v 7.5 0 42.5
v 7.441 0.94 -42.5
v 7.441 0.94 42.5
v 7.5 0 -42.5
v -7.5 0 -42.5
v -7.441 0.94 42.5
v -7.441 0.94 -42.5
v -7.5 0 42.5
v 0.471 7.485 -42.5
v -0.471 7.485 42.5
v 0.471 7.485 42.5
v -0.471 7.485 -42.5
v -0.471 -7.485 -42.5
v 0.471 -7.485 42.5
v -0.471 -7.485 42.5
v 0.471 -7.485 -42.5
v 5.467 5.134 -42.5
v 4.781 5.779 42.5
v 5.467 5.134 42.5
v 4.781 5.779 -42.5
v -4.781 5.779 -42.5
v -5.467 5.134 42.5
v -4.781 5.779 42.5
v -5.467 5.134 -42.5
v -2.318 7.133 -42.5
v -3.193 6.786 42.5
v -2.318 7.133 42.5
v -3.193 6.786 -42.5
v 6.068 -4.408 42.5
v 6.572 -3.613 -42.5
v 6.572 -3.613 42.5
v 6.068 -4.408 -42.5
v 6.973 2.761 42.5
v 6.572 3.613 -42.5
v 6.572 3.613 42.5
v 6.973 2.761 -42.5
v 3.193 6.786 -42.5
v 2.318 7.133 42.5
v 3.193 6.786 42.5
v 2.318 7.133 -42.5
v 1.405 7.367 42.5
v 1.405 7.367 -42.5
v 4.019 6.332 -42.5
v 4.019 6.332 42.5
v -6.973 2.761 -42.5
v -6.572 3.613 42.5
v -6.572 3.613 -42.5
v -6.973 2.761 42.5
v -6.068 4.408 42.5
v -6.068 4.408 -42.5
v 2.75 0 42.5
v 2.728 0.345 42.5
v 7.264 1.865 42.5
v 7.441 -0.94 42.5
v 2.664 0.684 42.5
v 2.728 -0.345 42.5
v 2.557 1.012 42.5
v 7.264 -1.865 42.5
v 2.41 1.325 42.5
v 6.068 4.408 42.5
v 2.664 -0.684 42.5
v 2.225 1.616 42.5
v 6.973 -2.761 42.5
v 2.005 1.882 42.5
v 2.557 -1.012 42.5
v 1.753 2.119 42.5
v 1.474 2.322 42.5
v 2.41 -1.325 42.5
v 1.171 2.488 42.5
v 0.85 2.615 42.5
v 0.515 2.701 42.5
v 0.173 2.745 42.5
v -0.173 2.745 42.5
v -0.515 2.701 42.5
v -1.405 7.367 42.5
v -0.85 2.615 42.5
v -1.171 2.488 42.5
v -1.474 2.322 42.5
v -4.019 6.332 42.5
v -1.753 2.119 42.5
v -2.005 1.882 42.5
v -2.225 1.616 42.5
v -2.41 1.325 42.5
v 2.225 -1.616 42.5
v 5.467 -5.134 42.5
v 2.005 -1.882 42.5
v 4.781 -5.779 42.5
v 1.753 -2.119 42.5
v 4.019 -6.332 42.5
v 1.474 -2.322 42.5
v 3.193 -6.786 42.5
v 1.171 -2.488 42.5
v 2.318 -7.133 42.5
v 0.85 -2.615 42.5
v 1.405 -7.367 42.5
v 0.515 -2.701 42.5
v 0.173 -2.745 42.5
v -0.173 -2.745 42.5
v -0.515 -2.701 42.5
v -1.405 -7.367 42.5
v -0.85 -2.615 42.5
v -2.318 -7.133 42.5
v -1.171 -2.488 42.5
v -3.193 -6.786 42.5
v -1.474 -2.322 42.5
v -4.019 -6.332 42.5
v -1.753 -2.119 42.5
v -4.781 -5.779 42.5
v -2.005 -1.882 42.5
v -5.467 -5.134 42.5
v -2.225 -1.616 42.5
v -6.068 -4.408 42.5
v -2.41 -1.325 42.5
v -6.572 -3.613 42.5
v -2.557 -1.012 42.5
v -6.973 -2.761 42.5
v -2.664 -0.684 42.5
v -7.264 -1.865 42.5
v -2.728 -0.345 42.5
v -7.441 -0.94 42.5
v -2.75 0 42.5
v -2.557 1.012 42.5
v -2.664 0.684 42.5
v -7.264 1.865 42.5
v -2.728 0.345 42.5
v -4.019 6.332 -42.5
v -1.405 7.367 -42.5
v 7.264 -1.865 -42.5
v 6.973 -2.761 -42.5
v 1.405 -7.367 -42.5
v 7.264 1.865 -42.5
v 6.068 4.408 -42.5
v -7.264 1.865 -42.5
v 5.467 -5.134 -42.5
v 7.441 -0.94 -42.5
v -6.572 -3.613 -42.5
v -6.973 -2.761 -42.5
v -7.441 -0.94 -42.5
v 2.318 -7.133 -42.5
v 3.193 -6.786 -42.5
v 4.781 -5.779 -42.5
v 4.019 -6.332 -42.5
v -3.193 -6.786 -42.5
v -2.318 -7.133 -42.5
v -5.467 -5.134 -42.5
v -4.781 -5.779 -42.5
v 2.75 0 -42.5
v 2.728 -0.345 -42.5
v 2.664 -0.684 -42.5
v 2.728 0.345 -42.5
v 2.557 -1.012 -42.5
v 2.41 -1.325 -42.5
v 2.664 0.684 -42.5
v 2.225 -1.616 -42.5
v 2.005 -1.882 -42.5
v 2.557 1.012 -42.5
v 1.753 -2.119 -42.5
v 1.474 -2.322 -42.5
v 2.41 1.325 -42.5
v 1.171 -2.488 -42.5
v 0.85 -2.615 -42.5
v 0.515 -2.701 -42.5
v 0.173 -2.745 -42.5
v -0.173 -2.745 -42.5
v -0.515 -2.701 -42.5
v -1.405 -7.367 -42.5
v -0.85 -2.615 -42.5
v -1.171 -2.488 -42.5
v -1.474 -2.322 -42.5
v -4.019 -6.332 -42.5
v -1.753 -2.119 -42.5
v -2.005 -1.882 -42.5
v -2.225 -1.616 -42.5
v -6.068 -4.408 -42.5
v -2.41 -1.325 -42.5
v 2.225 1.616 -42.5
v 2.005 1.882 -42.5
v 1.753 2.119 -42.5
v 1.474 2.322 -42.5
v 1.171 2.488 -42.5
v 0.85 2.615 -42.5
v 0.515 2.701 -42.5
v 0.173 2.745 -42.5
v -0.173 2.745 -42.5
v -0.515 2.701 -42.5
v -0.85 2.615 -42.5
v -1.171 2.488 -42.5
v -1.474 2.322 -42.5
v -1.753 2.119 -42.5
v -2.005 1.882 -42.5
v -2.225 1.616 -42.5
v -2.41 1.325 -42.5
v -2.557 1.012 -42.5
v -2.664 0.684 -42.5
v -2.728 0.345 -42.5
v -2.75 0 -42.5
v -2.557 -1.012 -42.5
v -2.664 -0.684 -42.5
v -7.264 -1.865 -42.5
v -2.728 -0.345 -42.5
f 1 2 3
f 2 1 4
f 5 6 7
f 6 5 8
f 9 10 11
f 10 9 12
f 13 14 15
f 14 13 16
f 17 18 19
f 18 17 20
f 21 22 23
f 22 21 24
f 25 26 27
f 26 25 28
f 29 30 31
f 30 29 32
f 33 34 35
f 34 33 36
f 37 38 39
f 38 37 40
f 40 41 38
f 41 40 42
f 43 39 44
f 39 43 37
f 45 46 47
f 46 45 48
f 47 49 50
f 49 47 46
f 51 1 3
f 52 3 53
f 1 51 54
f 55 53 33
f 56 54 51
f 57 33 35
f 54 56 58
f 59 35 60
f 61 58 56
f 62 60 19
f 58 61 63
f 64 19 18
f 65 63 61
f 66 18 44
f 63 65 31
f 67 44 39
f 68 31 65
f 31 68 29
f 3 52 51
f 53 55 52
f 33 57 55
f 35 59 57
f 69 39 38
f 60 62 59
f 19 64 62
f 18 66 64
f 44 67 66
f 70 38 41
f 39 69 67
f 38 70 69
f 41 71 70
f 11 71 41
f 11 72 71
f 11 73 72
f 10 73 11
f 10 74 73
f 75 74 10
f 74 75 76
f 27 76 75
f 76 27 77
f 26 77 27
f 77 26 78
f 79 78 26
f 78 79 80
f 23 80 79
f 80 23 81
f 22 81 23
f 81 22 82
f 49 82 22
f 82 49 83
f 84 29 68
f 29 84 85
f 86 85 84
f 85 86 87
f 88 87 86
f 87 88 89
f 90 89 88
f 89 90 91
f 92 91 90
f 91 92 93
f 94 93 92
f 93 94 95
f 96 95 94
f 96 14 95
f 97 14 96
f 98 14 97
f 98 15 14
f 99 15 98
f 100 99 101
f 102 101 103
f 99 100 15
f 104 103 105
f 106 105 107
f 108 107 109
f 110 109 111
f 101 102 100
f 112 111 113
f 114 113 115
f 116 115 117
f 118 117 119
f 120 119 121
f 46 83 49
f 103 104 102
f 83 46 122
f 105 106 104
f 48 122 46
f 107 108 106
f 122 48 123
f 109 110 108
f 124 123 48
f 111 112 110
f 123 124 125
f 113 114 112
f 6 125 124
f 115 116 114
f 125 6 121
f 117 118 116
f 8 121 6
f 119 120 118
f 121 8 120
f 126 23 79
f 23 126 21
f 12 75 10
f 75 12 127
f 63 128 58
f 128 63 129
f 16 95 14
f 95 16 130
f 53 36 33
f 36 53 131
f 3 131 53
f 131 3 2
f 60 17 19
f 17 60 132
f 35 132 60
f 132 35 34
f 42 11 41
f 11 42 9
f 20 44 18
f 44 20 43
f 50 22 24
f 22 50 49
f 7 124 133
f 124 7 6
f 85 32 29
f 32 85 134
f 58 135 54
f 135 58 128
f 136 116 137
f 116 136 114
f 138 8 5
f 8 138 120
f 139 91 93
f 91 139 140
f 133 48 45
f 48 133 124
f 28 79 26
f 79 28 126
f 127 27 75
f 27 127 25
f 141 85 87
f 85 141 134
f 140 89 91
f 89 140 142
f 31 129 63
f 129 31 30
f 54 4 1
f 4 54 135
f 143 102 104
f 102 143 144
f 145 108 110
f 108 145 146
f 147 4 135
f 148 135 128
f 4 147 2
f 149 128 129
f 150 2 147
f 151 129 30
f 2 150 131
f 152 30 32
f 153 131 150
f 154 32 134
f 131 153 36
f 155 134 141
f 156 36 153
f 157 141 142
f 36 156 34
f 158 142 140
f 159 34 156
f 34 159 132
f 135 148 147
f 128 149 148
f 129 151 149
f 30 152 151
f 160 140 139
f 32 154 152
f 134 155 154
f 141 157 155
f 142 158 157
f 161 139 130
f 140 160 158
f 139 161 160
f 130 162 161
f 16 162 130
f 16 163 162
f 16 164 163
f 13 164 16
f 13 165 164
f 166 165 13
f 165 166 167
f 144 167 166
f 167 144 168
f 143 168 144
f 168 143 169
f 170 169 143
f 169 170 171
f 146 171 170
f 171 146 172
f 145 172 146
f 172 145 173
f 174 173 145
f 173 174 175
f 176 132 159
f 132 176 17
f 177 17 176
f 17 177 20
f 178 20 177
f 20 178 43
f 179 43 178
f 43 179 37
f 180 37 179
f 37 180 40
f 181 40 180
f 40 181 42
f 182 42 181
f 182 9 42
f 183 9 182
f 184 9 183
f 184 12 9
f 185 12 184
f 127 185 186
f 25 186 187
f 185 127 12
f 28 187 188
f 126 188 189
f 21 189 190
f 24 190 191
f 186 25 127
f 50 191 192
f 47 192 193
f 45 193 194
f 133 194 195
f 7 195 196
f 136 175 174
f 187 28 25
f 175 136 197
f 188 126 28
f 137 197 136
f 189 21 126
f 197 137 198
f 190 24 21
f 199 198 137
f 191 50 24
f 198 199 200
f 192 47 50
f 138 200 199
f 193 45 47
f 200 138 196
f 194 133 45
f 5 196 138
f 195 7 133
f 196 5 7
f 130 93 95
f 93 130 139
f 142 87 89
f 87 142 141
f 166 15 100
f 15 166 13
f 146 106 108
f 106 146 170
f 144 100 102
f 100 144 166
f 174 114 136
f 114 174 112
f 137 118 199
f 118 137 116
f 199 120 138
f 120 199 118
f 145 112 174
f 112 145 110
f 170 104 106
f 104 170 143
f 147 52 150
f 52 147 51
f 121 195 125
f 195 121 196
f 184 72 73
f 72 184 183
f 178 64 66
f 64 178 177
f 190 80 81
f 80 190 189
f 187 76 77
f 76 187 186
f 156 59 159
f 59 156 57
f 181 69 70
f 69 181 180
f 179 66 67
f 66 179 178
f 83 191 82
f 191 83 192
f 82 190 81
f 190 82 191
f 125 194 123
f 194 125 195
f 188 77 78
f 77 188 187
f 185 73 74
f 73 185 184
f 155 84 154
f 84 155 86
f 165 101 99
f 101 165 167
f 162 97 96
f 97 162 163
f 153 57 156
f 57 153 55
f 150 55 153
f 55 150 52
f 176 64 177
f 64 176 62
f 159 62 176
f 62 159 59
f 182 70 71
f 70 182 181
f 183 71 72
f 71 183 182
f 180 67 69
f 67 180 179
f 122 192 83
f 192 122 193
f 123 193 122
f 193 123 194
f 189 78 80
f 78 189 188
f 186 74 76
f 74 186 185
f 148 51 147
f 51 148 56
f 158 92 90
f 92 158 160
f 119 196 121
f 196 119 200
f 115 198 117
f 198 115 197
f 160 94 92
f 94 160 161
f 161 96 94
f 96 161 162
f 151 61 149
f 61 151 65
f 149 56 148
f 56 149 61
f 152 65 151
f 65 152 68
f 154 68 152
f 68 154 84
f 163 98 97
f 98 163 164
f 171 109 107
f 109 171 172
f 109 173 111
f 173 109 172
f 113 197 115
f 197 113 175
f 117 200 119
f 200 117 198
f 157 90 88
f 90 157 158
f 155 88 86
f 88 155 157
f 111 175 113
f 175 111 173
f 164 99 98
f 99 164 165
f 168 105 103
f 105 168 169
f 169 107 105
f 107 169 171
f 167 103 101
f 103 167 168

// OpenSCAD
$fn = 50;


difference() {
	union() {
		translate(v = [0, 0, -42.5000000000]) {
			cylinder(h = 85, r = 7.5000000000);
		}
	}
	union() {
		translate(v = [0, 0, -100.0000000000]) {
			cylinder(h = 200, r = 2.7500000000);
		}
	}
}
